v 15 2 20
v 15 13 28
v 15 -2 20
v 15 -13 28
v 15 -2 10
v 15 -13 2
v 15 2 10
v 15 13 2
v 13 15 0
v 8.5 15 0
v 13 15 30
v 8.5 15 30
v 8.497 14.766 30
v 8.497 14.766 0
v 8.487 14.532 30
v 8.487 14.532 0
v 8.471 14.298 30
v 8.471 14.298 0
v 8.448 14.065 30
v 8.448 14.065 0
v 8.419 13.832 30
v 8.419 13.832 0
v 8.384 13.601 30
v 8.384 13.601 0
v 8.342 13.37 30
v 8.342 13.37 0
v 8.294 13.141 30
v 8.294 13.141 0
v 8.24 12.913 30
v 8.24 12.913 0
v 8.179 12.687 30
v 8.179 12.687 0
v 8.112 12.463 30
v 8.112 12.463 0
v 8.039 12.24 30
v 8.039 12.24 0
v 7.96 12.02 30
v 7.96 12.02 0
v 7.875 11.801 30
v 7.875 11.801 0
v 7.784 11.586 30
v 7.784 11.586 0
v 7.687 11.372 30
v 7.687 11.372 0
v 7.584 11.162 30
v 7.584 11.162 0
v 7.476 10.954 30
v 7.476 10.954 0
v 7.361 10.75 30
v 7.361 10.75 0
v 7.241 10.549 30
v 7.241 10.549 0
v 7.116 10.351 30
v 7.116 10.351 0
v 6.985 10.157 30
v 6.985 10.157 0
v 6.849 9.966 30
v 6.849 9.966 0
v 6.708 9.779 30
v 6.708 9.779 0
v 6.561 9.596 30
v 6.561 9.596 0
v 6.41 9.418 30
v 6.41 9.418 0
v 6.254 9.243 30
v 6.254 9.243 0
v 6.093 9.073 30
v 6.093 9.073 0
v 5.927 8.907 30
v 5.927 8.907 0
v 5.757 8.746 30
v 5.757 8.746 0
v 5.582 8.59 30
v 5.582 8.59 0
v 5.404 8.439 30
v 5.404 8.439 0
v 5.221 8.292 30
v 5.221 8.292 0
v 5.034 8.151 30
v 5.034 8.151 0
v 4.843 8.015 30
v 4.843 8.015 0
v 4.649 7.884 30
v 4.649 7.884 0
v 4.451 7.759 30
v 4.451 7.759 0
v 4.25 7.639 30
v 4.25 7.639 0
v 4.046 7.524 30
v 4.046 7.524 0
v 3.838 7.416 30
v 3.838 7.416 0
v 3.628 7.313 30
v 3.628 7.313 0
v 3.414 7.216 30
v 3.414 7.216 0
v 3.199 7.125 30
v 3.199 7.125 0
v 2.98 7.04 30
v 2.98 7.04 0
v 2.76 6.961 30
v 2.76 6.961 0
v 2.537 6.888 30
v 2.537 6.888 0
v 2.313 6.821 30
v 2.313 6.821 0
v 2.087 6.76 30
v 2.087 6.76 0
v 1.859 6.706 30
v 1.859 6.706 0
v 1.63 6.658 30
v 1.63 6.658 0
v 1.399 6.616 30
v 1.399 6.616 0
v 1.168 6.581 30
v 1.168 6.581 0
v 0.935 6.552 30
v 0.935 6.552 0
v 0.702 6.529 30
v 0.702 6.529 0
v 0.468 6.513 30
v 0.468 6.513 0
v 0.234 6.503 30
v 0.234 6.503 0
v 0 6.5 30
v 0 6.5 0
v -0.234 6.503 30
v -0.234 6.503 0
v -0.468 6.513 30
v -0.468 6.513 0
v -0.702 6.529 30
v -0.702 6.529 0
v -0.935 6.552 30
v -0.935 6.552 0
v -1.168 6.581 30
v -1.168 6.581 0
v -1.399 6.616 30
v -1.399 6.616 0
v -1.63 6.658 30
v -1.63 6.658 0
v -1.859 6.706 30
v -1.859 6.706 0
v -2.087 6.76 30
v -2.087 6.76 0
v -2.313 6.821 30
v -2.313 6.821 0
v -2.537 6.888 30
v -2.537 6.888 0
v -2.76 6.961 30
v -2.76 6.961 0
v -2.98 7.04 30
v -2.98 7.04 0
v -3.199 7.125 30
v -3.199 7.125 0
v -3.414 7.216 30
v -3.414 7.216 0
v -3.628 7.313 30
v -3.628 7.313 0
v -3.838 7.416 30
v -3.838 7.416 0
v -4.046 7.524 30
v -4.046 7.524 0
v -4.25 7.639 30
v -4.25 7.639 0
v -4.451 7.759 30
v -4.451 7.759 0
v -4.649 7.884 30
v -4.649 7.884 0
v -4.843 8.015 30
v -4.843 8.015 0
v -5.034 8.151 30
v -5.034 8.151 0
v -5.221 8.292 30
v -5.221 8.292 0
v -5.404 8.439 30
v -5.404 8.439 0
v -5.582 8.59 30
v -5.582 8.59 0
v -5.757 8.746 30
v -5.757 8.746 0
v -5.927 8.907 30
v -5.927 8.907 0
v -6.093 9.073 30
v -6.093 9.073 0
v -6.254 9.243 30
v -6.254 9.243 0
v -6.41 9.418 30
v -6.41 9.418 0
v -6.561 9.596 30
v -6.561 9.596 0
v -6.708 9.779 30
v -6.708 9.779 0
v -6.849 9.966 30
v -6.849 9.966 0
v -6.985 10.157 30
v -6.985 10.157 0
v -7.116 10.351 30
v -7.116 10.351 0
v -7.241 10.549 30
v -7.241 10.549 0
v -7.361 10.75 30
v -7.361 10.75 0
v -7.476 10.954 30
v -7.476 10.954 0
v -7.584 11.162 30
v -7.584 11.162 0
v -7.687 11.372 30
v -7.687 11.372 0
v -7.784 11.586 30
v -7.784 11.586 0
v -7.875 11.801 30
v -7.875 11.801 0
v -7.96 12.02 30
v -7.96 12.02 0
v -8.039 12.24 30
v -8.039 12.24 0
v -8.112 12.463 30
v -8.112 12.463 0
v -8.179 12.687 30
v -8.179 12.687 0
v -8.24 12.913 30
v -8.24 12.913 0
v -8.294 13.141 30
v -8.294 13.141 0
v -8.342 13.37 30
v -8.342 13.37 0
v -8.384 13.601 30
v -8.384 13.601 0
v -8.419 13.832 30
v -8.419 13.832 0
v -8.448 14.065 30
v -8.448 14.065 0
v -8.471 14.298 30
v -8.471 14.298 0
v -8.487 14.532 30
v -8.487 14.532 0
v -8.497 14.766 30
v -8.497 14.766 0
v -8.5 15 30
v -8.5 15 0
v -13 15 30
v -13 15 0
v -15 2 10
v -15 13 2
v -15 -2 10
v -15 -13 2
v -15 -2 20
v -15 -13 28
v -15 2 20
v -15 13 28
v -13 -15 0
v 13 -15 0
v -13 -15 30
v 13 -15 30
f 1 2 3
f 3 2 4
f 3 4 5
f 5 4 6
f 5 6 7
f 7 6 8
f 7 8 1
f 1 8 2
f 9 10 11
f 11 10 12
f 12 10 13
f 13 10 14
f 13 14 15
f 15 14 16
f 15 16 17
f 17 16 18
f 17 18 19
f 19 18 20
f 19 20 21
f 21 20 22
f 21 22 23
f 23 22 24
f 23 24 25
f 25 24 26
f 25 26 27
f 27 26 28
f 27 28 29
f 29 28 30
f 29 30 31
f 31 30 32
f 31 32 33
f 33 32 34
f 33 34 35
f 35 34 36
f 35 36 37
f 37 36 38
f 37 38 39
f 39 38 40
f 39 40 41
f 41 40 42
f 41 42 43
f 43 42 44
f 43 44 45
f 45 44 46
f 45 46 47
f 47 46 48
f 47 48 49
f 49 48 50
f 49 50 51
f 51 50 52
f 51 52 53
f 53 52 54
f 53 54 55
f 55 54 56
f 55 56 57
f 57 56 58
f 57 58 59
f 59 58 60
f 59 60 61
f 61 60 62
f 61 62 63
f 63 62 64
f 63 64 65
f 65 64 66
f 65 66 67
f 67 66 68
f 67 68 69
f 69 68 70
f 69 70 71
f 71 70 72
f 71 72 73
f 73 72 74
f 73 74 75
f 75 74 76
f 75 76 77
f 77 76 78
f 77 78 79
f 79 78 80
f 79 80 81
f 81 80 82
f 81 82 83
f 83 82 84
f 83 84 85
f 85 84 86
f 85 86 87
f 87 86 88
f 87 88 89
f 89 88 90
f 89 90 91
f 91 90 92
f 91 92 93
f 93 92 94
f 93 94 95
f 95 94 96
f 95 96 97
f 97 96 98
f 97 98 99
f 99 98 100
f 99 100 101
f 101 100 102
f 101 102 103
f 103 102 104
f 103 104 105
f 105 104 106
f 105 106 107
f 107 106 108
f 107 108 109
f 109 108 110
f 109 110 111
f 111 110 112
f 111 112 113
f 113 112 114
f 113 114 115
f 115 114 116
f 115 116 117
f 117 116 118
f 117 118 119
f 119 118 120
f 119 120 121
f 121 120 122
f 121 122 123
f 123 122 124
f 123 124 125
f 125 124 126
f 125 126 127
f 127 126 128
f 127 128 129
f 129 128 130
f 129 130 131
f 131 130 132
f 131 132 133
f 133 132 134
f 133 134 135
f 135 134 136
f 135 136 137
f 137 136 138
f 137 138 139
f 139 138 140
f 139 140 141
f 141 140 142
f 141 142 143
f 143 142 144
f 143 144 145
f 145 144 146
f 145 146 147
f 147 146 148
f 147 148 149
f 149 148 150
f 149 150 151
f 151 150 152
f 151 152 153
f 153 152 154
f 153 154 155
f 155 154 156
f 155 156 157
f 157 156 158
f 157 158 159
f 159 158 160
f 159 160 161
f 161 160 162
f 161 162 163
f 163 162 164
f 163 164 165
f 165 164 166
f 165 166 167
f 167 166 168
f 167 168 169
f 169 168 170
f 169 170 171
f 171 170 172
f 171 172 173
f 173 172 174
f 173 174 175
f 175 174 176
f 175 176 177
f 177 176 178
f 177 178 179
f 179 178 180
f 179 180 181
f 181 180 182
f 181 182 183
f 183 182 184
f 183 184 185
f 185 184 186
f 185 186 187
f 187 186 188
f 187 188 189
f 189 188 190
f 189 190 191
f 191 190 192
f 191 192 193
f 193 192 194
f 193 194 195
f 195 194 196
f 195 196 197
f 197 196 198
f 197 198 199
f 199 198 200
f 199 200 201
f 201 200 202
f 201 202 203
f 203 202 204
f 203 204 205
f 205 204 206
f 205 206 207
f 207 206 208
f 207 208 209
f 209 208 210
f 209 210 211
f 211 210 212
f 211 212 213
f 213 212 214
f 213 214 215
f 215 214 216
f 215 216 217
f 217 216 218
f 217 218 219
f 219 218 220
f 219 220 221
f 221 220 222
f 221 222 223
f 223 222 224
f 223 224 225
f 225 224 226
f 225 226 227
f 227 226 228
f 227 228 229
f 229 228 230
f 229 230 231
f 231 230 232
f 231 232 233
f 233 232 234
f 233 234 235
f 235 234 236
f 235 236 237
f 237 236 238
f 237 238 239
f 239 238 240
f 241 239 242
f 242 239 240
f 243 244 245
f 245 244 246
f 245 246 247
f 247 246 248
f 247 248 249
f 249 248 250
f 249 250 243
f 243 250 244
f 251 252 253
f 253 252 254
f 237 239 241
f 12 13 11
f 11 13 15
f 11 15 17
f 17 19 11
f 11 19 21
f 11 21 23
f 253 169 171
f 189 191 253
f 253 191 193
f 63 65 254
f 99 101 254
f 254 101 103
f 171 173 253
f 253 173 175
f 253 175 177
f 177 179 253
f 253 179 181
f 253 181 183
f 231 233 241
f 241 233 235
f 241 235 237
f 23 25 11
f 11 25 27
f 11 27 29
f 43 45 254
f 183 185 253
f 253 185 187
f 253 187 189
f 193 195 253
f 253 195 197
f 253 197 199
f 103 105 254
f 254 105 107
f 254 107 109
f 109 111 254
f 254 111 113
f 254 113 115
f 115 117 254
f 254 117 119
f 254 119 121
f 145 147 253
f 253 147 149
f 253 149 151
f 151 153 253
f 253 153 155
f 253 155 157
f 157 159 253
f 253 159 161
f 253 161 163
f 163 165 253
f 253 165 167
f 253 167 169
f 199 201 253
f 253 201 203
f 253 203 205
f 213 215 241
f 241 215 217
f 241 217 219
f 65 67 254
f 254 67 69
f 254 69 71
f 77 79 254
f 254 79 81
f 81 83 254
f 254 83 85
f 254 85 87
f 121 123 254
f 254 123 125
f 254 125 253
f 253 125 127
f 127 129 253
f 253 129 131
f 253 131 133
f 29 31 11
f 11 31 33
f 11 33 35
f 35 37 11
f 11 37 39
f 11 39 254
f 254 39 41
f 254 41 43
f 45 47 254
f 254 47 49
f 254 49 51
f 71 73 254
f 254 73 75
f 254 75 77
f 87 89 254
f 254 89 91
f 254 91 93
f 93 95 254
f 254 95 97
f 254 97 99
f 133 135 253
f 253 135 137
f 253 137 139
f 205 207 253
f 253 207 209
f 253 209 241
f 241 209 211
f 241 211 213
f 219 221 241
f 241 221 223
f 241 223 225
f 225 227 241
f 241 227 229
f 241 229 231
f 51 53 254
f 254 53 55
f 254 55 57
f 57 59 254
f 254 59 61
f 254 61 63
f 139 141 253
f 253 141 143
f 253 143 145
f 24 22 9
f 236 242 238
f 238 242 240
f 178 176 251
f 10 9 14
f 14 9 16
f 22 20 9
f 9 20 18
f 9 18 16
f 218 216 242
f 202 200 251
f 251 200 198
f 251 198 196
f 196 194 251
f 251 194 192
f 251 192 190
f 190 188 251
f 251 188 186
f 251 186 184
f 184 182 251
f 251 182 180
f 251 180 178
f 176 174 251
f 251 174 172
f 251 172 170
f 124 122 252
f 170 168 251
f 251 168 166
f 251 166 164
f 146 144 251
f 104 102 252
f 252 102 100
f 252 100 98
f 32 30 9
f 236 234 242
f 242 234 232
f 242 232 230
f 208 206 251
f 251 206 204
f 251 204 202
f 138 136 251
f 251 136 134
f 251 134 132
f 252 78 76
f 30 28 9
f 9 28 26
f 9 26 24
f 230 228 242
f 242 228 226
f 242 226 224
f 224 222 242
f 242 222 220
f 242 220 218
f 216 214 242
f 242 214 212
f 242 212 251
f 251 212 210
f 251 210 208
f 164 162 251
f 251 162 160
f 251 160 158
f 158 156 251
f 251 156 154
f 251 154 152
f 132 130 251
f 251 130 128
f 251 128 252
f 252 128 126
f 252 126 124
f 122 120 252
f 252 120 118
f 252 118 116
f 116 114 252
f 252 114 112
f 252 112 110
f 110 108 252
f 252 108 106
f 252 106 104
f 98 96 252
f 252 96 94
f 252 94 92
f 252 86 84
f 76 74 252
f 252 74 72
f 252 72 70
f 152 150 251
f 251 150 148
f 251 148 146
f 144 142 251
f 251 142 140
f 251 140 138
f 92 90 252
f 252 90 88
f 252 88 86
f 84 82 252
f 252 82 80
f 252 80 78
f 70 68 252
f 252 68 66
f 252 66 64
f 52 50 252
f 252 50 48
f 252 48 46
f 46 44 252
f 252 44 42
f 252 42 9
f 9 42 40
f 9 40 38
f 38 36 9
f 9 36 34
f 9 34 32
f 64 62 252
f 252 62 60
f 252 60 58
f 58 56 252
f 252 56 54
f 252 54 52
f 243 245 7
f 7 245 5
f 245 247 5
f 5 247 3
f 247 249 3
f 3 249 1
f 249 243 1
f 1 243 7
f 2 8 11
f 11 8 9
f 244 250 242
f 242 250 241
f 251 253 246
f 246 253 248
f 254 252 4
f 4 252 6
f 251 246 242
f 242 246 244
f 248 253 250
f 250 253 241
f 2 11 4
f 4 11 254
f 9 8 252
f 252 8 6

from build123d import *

# Parameters (mm, degrees)
EXTRUDE_1_DEPTH     = 30
SKETCH_2_W          = 10
SKETCH_2_H          = 4
CUT_EXTRUDE_1_DEPTH = 46
CHAMFER_1_SIZE      = 2
CHAMFER_2_SIZE      = 2
CHAMFER_3_SIZE      = 2


with BuildPart() as part:
    # 草图1 → 凸台-拉伸1 (new body)
    with BuildSketch(Plane.XY):
        with BuildLine():
            Line((8.5, 15), (15, 15))
            Line((15, 15), (15, -15))
            Line((15, -15), (-15, -15))
            Line((-15, -15), (-15, 15))
            Line((-15, 15), (-8.5, 15))
            ThreePointArc((-8.5, 15), (0, 6.5), (8.5, 15))
        make_face()
    extrude(amount=EXTRUDE_1_DEPTH)

    # 草图2 → 切除-拉伸1 (cut, through all)
    with BuildSketch(Plane(origin=(15, 0, 0), x_dir=(0, 0, -1), z_dir=(1, 0, 0))):
        with Locations((-15, 0)):
            Rectangle(SKETCH_2_W, SKETCH_2_H)
    extrude(amount=-CUT_EXTRUDE_1_DEPTH, mode=Mode.SUBTRACT)

    # 倒角1
    chamfer_1_edges = [part.edges().sort_by_distance(p)[0] for p in [
        (-15, 15, 15),
        (15, 15, 15),
    ]]
    chamfer(chamfer_1_edges, length=CHAMFER_1_SIZE)

    # 倒角2
    chamfer_2_edges = [part.edges().sort_by_distance(p)[0] for p in [
        (15, -15, 15),
        (-15, -15, 15),
    ]]
    chamfer(chamfer_2_edges, length=CHAMFER_2_SIZE)

    # 倒角3
    chamfer_3_edges = [part.edges().sort_by_distance(p)[0] for p in [
        (-15, 0, 0),
        (-15, 0, 30),
        (15, 0, 30),
        (15, 0, 0),
    ]]
    chamfer(chamfer_3_edges, length=CHAMFER_3_SIZE)


solid = part.part
